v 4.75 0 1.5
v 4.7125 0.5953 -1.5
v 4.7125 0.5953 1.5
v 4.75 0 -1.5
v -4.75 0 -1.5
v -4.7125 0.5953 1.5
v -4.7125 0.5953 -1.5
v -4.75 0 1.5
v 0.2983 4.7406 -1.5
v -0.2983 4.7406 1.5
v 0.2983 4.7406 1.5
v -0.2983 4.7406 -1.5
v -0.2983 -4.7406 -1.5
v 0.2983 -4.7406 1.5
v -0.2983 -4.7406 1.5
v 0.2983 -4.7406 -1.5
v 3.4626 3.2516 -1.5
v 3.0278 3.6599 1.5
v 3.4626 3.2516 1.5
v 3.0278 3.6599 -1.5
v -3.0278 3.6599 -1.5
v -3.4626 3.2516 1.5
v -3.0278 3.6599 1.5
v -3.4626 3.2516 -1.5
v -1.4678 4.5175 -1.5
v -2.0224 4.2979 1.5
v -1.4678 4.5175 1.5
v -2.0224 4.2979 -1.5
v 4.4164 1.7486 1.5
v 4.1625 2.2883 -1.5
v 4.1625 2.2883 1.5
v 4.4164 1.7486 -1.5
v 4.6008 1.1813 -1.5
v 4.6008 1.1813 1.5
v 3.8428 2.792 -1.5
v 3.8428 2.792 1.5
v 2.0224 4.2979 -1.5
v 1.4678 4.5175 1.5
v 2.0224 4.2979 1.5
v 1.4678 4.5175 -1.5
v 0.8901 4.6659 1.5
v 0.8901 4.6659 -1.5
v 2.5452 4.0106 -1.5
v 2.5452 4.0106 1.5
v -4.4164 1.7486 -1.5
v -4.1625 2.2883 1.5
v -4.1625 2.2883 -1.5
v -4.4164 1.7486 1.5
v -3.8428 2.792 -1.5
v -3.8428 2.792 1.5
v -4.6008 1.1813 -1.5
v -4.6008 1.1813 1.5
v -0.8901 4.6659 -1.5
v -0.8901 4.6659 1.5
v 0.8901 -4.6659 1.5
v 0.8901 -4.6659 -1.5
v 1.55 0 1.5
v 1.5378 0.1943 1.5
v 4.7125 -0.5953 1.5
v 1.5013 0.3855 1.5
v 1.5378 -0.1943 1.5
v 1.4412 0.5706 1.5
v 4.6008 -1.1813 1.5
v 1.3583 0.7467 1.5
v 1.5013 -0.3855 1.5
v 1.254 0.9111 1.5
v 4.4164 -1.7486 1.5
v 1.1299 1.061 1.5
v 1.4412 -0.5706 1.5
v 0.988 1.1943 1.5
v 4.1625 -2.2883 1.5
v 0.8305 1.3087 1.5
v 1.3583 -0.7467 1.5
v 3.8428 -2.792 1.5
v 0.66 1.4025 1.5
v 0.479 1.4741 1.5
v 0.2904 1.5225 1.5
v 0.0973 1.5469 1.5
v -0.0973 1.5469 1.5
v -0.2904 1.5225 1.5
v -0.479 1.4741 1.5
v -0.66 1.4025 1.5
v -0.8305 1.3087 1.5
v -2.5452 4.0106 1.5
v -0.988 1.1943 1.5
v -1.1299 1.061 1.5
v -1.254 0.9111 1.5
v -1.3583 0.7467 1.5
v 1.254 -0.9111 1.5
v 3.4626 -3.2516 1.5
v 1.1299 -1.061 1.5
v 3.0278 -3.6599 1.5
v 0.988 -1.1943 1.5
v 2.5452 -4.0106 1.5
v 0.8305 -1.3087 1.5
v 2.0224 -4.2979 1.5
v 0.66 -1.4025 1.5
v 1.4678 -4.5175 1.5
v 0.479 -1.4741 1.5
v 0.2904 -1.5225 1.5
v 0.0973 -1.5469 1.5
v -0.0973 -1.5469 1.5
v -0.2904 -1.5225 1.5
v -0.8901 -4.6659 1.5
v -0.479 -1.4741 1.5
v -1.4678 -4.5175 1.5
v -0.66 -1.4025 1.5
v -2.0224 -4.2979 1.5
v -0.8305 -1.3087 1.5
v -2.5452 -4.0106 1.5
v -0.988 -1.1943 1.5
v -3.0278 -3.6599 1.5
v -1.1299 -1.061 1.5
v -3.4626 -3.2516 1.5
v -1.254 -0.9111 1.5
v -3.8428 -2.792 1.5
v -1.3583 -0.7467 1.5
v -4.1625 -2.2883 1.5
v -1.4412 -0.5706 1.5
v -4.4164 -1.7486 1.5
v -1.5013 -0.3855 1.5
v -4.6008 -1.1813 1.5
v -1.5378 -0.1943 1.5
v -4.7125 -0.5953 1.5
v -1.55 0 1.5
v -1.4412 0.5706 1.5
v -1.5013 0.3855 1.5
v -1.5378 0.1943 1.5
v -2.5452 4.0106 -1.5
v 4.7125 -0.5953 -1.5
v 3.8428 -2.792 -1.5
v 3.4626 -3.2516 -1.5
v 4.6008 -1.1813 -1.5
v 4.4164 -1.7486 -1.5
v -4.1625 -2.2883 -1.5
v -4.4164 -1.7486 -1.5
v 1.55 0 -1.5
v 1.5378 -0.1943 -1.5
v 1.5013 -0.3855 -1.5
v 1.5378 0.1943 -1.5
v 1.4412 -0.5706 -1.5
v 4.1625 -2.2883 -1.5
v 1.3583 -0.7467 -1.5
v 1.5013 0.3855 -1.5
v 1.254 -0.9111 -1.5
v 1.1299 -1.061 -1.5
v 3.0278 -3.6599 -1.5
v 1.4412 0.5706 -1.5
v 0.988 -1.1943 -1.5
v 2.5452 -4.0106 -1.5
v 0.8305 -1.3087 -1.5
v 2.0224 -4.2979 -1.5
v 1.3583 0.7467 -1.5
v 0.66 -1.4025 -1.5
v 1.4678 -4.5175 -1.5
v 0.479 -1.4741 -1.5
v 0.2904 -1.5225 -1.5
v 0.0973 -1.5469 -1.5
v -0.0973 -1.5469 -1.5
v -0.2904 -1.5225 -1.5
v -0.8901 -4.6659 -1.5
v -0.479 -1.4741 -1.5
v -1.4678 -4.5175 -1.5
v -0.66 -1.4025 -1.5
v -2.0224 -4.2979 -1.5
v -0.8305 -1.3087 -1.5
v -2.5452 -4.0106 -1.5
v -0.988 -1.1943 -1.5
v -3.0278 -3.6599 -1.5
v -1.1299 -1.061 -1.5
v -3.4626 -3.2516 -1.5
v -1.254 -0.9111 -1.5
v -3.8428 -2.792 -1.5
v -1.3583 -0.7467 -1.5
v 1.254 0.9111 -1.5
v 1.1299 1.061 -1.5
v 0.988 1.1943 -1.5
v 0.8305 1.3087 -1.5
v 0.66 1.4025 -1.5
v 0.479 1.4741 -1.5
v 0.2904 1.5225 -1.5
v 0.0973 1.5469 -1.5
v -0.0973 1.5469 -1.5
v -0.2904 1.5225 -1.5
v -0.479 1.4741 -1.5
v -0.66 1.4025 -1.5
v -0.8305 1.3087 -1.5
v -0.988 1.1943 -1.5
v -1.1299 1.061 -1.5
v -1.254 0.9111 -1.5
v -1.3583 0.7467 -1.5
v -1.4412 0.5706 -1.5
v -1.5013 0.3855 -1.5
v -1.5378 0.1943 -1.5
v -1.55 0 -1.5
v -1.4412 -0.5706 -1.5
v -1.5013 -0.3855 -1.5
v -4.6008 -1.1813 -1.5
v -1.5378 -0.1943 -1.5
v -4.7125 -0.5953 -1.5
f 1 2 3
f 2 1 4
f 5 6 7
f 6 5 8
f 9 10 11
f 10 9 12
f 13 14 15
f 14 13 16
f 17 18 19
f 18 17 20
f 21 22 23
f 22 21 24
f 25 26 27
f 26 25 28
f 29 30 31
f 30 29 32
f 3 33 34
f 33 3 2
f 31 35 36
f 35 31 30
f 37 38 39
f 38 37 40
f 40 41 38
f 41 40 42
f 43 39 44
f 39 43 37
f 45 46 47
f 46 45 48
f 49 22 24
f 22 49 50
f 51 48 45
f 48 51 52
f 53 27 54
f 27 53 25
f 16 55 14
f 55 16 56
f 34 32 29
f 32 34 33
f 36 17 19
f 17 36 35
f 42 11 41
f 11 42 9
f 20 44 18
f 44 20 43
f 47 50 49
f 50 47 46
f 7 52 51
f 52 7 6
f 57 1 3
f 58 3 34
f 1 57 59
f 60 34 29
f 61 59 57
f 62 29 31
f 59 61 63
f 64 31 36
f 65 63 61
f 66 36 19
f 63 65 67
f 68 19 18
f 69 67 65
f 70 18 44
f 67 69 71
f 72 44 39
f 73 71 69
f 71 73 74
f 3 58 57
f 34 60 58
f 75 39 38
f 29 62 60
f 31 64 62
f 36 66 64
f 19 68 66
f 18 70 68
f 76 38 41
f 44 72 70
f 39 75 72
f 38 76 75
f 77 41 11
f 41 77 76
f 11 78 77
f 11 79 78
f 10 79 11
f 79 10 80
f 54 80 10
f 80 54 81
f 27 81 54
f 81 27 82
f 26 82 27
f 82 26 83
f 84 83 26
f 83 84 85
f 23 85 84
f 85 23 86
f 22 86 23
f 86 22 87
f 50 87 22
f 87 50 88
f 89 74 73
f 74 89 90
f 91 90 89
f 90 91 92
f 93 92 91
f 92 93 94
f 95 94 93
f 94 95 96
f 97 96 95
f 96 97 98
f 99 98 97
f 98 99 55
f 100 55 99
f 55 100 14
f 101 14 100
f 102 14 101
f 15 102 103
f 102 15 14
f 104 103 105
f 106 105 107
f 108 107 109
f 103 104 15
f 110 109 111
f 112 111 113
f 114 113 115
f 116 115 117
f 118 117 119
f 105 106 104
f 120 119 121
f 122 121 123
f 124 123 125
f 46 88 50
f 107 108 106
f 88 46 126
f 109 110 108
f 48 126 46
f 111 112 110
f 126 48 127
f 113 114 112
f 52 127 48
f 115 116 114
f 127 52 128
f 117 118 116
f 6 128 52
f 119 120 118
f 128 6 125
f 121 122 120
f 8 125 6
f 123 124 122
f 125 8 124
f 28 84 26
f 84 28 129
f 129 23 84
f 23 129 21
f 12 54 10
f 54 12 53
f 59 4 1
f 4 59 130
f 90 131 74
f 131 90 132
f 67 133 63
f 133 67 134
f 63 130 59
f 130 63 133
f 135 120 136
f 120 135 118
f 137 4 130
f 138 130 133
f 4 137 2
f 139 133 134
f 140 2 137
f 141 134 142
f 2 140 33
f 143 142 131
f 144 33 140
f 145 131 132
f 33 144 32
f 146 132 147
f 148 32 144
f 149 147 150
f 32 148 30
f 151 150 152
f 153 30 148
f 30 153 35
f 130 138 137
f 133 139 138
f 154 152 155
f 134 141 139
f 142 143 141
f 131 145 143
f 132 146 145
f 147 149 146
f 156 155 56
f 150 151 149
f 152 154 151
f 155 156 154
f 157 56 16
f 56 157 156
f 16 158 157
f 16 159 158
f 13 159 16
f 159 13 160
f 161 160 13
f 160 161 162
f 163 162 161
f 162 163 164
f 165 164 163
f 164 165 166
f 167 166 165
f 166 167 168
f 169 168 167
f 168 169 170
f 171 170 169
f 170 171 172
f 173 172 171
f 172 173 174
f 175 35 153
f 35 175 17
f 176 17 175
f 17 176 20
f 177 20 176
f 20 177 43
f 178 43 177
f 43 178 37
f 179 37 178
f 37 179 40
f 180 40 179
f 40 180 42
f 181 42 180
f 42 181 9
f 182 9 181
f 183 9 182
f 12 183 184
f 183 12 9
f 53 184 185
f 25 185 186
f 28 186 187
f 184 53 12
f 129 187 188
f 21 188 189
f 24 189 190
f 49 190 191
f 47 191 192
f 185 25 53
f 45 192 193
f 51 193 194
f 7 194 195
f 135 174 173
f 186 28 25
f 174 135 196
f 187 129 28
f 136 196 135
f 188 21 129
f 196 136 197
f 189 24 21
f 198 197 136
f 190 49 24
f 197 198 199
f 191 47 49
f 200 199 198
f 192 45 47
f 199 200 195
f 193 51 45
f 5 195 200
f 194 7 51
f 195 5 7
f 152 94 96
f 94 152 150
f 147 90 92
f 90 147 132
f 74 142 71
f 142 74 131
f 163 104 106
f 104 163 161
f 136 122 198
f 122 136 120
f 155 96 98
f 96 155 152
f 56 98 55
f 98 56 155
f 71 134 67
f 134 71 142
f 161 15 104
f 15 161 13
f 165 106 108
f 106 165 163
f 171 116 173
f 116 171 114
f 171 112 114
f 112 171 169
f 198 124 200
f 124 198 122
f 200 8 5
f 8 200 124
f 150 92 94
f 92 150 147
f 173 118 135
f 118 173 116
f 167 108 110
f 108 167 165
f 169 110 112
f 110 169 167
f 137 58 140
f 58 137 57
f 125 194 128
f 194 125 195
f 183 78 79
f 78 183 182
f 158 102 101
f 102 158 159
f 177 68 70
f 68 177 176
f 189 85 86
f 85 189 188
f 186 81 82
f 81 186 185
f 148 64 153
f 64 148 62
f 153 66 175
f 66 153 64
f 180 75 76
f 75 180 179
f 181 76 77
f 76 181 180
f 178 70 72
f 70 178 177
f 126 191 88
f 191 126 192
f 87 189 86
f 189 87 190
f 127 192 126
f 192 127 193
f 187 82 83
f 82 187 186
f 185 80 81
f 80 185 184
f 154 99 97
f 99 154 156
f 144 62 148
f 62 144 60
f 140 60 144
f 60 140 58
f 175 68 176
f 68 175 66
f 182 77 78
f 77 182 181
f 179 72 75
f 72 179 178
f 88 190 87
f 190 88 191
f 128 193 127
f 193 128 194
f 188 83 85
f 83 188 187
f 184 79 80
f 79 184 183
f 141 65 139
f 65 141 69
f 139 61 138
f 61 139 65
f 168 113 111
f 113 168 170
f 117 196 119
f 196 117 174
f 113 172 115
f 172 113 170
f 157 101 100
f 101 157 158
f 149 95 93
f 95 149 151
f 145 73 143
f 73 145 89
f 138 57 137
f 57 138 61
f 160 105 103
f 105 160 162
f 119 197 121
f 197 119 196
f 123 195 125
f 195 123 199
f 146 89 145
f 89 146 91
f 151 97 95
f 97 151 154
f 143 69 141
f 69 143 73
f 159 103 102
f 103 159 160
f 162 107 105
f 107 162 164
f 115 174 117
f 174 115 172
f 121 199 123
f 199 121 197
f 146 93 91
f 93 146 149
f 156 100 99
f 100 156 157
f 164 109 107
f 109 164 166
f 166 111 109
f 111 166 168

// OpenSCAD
$fn = 50;


difference() {
	union() {
		translate(v = [0, 0, -1.5000000000]) {
			cylinder(h = 3, r = 4.7500000000);
		}
	}
	union() {
		translate(v = [0, 0, -100.0000000000]) {
			cylinder(h = 200, r = 1.5500000000);
		}
	}
}
